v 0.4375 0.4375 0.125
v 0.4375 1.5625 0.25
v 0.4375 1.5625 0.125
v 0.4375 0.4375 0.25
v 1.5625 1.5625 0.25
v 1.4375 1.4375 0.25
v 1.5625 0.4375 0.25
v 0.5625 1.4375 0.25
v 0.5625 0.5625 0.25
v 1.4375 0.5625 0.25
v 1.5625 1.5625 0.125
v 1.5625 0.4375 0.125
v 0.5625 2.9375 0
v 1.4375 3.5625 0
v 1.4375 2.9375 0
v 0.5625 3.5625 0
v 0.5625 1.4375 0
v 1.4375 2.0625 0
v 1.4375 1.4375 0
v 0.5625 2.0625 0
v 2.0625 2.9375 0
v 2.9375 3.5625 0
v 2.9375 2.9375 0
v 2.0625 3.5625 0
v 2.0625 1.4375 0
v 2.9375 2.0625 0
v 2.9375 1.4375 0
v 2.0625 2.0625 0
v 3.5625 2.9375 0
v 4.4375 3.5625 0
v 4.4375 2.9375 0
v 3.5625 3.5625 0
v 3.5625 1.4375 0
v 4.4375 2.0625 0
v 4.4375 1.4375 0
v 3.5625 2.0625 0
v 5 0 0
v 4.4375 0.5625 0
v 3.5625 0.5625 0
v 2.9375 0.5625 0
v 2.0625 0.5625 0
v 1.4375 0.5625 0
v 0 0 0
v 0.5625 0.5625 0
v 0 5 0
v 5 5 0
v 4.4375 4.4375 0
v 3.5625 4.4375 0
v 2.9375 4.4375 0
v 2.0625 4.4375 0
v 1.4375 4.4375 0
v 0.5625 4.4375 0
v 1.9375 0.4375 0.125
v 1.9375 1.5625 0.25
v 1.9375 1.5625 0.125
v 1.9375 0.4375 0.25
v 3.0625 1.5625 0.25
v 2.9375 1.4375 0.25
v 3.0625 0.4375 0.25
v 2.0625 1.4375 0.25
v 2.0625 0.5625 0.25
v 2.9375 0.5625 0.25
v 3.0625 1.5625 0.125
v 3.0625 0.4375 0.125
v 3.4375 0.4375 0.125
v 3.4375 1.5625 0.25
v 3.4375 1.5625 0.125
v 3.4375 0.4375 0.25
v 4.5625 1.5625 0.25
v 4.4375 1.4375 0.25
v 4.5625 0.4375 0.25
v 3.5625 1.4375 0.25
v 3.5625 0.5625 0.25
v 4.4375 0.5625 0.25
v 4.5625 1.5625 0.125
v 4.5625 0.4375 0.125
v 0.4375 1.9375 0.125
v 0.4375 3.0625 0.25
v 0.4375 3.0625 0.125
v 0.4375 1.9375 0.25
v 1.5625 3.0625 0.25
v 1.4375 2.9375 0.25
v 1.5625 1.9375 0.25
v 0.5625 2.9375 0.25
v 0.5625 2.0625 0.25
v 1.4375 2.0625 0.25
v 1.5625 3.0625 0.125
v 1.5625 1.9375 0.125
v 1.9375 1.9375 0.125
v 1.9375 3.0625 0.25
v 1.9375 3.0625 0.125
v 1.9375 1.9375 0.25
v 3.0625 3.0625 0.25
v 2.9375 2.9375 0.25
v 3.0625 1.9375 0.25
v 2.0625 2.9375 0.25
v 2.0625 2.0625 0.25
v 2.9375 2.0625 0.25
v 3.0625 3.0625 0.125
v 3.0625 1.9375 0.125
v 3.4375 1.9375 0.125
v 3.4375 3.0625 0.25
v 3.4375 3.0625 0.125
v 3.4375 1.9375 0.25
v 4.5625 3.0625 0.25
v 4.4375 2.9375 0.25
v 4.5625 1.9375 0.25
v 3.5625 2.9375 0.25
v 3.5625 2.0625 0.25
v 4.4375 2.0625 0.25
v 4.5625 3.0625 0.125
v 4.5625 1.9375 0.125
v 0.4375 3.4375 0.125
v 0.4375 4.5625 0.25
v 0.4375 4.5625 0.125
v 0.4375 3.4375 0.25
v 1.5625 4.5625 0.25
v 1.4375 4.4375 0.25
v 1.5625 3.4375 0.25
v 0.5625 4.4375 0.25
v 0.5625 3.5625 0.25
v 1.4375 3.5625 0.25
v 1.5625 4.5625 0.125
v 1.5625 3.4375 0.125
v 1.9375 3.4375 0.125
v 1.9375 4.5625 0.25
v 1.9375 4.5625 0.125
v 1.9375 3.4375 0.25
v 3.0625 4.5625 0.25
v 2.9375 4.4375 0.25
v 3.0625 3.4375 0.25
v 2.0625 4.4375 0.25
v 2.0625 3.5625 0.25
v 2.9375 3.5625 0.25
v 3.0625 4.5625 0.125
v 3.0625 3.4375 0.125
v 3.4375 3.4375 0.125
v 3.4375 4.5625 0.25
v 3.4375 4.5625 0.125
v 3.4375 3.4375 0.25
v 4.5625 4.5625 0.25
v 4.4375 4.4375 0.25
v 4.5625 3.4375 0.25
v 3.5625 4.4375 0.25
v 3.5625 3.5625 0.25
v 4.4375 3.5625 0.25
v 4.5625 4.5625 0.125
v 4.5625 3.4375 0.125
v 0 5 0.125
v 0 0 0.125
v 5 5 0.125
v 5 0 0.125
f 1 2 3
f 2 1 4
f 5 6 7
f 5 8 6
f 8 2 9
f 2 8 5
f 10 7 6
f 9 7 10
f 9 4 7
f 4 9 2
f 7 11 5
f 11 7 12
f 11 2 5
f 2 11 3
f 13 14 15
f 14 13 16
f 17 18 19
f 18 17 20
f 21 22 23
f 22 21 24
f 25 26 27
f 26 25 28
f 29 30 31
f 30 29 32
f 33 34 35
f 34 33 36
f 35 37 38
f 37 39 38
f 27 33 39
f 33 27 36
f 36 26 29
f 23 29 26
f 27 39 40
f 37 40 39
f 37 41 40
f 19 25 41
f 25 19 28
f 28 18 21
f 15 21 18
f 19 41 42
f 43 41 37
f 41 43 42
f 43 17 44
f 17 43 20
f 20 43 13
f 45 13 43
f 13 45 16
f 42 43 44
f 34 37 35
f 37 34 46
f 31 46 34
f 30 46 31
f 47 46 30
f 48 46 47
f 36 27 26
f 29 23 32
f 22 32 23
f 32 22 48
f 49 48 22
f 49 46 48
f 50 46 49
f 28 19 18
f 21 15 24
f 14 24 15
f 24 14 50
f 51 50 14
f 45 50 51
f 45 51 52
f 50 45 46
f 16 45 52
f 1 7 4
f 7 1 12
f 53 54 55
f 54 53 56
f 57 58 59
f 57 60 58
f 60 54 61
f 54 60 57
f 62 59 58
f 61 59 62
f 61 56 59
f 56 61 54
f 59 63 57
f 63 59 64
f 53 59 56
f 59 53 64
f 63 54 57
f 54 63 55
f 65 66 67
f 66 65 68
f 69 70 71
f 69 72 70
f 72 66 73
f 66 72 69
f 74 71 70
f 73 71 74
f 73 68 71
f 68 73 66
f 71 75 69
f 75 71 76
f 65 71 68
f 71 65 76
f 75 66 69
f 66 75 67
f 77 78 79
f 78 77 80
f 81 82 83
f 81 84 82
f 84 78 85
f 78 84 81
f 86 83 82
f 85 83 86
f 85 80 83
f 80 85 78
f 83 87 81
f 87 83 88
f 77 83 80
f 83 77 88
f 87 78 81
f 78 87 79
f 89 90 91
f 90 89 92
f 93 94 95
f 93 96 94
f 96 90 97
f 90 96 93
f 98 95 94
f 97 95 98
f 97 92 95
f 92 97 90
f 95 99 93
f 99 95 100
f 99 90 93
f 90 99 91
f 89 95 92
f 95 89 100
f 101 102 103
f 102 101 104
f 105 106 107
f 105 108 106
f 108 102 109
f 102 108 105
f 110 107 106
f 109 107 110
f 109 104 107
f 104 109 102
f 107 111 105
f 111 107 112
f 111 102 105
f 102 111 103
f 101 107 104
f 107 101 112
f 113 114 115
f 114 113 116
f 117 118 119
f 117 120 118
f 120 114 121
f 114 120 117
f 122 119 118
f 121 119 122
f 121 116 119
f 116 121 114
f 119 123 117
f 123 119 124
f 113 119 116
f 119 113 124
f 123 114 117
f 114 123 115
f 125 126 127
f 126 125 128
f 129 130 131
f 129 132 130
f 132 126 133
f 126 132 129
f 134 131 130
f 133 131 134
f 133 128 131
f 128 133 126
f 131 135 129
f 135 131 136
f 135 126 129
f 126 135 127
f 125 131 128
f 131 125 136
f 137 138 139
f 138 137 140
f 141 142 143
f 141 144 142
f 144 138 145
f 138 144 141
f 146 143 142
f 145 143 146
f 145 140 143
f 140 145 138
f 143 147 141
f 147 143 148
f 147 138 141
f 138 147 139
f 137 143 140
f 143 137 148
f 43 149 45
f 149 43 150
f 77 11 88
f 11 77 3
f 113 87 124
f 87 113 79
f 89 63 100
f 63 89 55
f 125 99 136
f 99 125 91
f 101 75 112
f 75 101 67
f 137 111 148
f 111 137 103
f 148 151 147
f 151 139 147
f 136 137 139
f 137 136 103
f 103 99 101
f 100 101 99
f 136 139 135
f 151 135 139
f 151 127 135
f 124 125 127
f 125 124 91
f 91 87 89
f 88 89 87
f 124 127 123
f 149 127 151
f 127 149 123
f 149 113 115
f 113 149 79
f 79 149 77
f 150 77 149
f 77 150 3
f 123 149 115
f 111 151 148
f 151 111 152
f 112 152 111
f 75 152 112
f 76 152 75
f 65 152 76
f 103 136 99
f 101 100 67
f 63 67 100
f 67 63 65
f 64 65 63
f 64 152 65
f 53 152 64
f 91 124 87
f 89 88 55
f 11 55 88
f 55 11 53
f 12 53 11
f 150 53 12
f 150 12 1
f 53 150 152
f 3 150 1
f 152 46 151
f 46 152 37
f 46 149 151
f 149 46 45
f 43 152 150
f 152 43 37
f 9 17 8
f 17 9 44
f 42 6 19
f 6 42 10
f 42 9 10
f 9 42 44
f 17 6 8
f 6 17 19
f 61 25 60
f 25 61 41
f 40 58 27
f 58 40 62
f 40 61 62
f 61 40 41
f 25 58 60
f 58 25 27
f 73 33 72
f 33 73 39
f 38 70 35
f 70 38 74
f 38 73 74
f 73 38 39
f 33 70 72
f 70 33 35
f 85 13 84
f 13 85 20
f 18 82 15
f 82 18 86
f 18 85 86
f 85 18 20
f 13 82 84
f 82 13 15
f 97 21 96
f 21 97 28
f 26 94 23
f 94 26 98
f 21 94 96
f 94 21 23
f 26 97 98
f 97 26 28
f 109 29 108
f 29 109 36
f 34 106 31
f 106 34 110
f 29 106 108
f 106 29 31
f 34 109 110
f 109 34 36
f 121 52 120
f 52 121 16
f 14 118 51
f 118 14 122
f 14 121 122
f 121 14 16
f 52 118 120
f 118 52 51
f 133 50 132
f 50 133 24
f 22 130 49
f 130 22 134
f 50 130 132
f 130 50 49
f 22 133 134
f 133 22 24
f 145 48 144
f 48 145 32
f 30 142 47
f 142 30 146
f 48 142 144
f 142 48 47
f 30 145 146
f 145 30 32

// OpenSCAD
hs = 7.0 / 8.0;
bs = 9/8.0;

width = 5;
height = 5;

sixtnth = 1/16;

t = 1/8;

difference() {
    union() {
        cube(size=[width, height, t]);
        for (y = [.5: 1.5 : 4.5]) {
        for (x = [.5 : 1.5 : 4.5]) {
            translate(v = [x-sixtnth,y-sixtnth,0]) {
                cube(size=[bs,bs,.25]);
            }
        }}
    }
    
    for (y = [.5: 1.5 : 5]) {
    for (x = [.5 : 1.5 : 5]) {
        translate(v = [x+sixtnth,y+sixtnth,-1/8]) {
            cube(size=[hs,hs,1]);
        }
    }}
    
}
